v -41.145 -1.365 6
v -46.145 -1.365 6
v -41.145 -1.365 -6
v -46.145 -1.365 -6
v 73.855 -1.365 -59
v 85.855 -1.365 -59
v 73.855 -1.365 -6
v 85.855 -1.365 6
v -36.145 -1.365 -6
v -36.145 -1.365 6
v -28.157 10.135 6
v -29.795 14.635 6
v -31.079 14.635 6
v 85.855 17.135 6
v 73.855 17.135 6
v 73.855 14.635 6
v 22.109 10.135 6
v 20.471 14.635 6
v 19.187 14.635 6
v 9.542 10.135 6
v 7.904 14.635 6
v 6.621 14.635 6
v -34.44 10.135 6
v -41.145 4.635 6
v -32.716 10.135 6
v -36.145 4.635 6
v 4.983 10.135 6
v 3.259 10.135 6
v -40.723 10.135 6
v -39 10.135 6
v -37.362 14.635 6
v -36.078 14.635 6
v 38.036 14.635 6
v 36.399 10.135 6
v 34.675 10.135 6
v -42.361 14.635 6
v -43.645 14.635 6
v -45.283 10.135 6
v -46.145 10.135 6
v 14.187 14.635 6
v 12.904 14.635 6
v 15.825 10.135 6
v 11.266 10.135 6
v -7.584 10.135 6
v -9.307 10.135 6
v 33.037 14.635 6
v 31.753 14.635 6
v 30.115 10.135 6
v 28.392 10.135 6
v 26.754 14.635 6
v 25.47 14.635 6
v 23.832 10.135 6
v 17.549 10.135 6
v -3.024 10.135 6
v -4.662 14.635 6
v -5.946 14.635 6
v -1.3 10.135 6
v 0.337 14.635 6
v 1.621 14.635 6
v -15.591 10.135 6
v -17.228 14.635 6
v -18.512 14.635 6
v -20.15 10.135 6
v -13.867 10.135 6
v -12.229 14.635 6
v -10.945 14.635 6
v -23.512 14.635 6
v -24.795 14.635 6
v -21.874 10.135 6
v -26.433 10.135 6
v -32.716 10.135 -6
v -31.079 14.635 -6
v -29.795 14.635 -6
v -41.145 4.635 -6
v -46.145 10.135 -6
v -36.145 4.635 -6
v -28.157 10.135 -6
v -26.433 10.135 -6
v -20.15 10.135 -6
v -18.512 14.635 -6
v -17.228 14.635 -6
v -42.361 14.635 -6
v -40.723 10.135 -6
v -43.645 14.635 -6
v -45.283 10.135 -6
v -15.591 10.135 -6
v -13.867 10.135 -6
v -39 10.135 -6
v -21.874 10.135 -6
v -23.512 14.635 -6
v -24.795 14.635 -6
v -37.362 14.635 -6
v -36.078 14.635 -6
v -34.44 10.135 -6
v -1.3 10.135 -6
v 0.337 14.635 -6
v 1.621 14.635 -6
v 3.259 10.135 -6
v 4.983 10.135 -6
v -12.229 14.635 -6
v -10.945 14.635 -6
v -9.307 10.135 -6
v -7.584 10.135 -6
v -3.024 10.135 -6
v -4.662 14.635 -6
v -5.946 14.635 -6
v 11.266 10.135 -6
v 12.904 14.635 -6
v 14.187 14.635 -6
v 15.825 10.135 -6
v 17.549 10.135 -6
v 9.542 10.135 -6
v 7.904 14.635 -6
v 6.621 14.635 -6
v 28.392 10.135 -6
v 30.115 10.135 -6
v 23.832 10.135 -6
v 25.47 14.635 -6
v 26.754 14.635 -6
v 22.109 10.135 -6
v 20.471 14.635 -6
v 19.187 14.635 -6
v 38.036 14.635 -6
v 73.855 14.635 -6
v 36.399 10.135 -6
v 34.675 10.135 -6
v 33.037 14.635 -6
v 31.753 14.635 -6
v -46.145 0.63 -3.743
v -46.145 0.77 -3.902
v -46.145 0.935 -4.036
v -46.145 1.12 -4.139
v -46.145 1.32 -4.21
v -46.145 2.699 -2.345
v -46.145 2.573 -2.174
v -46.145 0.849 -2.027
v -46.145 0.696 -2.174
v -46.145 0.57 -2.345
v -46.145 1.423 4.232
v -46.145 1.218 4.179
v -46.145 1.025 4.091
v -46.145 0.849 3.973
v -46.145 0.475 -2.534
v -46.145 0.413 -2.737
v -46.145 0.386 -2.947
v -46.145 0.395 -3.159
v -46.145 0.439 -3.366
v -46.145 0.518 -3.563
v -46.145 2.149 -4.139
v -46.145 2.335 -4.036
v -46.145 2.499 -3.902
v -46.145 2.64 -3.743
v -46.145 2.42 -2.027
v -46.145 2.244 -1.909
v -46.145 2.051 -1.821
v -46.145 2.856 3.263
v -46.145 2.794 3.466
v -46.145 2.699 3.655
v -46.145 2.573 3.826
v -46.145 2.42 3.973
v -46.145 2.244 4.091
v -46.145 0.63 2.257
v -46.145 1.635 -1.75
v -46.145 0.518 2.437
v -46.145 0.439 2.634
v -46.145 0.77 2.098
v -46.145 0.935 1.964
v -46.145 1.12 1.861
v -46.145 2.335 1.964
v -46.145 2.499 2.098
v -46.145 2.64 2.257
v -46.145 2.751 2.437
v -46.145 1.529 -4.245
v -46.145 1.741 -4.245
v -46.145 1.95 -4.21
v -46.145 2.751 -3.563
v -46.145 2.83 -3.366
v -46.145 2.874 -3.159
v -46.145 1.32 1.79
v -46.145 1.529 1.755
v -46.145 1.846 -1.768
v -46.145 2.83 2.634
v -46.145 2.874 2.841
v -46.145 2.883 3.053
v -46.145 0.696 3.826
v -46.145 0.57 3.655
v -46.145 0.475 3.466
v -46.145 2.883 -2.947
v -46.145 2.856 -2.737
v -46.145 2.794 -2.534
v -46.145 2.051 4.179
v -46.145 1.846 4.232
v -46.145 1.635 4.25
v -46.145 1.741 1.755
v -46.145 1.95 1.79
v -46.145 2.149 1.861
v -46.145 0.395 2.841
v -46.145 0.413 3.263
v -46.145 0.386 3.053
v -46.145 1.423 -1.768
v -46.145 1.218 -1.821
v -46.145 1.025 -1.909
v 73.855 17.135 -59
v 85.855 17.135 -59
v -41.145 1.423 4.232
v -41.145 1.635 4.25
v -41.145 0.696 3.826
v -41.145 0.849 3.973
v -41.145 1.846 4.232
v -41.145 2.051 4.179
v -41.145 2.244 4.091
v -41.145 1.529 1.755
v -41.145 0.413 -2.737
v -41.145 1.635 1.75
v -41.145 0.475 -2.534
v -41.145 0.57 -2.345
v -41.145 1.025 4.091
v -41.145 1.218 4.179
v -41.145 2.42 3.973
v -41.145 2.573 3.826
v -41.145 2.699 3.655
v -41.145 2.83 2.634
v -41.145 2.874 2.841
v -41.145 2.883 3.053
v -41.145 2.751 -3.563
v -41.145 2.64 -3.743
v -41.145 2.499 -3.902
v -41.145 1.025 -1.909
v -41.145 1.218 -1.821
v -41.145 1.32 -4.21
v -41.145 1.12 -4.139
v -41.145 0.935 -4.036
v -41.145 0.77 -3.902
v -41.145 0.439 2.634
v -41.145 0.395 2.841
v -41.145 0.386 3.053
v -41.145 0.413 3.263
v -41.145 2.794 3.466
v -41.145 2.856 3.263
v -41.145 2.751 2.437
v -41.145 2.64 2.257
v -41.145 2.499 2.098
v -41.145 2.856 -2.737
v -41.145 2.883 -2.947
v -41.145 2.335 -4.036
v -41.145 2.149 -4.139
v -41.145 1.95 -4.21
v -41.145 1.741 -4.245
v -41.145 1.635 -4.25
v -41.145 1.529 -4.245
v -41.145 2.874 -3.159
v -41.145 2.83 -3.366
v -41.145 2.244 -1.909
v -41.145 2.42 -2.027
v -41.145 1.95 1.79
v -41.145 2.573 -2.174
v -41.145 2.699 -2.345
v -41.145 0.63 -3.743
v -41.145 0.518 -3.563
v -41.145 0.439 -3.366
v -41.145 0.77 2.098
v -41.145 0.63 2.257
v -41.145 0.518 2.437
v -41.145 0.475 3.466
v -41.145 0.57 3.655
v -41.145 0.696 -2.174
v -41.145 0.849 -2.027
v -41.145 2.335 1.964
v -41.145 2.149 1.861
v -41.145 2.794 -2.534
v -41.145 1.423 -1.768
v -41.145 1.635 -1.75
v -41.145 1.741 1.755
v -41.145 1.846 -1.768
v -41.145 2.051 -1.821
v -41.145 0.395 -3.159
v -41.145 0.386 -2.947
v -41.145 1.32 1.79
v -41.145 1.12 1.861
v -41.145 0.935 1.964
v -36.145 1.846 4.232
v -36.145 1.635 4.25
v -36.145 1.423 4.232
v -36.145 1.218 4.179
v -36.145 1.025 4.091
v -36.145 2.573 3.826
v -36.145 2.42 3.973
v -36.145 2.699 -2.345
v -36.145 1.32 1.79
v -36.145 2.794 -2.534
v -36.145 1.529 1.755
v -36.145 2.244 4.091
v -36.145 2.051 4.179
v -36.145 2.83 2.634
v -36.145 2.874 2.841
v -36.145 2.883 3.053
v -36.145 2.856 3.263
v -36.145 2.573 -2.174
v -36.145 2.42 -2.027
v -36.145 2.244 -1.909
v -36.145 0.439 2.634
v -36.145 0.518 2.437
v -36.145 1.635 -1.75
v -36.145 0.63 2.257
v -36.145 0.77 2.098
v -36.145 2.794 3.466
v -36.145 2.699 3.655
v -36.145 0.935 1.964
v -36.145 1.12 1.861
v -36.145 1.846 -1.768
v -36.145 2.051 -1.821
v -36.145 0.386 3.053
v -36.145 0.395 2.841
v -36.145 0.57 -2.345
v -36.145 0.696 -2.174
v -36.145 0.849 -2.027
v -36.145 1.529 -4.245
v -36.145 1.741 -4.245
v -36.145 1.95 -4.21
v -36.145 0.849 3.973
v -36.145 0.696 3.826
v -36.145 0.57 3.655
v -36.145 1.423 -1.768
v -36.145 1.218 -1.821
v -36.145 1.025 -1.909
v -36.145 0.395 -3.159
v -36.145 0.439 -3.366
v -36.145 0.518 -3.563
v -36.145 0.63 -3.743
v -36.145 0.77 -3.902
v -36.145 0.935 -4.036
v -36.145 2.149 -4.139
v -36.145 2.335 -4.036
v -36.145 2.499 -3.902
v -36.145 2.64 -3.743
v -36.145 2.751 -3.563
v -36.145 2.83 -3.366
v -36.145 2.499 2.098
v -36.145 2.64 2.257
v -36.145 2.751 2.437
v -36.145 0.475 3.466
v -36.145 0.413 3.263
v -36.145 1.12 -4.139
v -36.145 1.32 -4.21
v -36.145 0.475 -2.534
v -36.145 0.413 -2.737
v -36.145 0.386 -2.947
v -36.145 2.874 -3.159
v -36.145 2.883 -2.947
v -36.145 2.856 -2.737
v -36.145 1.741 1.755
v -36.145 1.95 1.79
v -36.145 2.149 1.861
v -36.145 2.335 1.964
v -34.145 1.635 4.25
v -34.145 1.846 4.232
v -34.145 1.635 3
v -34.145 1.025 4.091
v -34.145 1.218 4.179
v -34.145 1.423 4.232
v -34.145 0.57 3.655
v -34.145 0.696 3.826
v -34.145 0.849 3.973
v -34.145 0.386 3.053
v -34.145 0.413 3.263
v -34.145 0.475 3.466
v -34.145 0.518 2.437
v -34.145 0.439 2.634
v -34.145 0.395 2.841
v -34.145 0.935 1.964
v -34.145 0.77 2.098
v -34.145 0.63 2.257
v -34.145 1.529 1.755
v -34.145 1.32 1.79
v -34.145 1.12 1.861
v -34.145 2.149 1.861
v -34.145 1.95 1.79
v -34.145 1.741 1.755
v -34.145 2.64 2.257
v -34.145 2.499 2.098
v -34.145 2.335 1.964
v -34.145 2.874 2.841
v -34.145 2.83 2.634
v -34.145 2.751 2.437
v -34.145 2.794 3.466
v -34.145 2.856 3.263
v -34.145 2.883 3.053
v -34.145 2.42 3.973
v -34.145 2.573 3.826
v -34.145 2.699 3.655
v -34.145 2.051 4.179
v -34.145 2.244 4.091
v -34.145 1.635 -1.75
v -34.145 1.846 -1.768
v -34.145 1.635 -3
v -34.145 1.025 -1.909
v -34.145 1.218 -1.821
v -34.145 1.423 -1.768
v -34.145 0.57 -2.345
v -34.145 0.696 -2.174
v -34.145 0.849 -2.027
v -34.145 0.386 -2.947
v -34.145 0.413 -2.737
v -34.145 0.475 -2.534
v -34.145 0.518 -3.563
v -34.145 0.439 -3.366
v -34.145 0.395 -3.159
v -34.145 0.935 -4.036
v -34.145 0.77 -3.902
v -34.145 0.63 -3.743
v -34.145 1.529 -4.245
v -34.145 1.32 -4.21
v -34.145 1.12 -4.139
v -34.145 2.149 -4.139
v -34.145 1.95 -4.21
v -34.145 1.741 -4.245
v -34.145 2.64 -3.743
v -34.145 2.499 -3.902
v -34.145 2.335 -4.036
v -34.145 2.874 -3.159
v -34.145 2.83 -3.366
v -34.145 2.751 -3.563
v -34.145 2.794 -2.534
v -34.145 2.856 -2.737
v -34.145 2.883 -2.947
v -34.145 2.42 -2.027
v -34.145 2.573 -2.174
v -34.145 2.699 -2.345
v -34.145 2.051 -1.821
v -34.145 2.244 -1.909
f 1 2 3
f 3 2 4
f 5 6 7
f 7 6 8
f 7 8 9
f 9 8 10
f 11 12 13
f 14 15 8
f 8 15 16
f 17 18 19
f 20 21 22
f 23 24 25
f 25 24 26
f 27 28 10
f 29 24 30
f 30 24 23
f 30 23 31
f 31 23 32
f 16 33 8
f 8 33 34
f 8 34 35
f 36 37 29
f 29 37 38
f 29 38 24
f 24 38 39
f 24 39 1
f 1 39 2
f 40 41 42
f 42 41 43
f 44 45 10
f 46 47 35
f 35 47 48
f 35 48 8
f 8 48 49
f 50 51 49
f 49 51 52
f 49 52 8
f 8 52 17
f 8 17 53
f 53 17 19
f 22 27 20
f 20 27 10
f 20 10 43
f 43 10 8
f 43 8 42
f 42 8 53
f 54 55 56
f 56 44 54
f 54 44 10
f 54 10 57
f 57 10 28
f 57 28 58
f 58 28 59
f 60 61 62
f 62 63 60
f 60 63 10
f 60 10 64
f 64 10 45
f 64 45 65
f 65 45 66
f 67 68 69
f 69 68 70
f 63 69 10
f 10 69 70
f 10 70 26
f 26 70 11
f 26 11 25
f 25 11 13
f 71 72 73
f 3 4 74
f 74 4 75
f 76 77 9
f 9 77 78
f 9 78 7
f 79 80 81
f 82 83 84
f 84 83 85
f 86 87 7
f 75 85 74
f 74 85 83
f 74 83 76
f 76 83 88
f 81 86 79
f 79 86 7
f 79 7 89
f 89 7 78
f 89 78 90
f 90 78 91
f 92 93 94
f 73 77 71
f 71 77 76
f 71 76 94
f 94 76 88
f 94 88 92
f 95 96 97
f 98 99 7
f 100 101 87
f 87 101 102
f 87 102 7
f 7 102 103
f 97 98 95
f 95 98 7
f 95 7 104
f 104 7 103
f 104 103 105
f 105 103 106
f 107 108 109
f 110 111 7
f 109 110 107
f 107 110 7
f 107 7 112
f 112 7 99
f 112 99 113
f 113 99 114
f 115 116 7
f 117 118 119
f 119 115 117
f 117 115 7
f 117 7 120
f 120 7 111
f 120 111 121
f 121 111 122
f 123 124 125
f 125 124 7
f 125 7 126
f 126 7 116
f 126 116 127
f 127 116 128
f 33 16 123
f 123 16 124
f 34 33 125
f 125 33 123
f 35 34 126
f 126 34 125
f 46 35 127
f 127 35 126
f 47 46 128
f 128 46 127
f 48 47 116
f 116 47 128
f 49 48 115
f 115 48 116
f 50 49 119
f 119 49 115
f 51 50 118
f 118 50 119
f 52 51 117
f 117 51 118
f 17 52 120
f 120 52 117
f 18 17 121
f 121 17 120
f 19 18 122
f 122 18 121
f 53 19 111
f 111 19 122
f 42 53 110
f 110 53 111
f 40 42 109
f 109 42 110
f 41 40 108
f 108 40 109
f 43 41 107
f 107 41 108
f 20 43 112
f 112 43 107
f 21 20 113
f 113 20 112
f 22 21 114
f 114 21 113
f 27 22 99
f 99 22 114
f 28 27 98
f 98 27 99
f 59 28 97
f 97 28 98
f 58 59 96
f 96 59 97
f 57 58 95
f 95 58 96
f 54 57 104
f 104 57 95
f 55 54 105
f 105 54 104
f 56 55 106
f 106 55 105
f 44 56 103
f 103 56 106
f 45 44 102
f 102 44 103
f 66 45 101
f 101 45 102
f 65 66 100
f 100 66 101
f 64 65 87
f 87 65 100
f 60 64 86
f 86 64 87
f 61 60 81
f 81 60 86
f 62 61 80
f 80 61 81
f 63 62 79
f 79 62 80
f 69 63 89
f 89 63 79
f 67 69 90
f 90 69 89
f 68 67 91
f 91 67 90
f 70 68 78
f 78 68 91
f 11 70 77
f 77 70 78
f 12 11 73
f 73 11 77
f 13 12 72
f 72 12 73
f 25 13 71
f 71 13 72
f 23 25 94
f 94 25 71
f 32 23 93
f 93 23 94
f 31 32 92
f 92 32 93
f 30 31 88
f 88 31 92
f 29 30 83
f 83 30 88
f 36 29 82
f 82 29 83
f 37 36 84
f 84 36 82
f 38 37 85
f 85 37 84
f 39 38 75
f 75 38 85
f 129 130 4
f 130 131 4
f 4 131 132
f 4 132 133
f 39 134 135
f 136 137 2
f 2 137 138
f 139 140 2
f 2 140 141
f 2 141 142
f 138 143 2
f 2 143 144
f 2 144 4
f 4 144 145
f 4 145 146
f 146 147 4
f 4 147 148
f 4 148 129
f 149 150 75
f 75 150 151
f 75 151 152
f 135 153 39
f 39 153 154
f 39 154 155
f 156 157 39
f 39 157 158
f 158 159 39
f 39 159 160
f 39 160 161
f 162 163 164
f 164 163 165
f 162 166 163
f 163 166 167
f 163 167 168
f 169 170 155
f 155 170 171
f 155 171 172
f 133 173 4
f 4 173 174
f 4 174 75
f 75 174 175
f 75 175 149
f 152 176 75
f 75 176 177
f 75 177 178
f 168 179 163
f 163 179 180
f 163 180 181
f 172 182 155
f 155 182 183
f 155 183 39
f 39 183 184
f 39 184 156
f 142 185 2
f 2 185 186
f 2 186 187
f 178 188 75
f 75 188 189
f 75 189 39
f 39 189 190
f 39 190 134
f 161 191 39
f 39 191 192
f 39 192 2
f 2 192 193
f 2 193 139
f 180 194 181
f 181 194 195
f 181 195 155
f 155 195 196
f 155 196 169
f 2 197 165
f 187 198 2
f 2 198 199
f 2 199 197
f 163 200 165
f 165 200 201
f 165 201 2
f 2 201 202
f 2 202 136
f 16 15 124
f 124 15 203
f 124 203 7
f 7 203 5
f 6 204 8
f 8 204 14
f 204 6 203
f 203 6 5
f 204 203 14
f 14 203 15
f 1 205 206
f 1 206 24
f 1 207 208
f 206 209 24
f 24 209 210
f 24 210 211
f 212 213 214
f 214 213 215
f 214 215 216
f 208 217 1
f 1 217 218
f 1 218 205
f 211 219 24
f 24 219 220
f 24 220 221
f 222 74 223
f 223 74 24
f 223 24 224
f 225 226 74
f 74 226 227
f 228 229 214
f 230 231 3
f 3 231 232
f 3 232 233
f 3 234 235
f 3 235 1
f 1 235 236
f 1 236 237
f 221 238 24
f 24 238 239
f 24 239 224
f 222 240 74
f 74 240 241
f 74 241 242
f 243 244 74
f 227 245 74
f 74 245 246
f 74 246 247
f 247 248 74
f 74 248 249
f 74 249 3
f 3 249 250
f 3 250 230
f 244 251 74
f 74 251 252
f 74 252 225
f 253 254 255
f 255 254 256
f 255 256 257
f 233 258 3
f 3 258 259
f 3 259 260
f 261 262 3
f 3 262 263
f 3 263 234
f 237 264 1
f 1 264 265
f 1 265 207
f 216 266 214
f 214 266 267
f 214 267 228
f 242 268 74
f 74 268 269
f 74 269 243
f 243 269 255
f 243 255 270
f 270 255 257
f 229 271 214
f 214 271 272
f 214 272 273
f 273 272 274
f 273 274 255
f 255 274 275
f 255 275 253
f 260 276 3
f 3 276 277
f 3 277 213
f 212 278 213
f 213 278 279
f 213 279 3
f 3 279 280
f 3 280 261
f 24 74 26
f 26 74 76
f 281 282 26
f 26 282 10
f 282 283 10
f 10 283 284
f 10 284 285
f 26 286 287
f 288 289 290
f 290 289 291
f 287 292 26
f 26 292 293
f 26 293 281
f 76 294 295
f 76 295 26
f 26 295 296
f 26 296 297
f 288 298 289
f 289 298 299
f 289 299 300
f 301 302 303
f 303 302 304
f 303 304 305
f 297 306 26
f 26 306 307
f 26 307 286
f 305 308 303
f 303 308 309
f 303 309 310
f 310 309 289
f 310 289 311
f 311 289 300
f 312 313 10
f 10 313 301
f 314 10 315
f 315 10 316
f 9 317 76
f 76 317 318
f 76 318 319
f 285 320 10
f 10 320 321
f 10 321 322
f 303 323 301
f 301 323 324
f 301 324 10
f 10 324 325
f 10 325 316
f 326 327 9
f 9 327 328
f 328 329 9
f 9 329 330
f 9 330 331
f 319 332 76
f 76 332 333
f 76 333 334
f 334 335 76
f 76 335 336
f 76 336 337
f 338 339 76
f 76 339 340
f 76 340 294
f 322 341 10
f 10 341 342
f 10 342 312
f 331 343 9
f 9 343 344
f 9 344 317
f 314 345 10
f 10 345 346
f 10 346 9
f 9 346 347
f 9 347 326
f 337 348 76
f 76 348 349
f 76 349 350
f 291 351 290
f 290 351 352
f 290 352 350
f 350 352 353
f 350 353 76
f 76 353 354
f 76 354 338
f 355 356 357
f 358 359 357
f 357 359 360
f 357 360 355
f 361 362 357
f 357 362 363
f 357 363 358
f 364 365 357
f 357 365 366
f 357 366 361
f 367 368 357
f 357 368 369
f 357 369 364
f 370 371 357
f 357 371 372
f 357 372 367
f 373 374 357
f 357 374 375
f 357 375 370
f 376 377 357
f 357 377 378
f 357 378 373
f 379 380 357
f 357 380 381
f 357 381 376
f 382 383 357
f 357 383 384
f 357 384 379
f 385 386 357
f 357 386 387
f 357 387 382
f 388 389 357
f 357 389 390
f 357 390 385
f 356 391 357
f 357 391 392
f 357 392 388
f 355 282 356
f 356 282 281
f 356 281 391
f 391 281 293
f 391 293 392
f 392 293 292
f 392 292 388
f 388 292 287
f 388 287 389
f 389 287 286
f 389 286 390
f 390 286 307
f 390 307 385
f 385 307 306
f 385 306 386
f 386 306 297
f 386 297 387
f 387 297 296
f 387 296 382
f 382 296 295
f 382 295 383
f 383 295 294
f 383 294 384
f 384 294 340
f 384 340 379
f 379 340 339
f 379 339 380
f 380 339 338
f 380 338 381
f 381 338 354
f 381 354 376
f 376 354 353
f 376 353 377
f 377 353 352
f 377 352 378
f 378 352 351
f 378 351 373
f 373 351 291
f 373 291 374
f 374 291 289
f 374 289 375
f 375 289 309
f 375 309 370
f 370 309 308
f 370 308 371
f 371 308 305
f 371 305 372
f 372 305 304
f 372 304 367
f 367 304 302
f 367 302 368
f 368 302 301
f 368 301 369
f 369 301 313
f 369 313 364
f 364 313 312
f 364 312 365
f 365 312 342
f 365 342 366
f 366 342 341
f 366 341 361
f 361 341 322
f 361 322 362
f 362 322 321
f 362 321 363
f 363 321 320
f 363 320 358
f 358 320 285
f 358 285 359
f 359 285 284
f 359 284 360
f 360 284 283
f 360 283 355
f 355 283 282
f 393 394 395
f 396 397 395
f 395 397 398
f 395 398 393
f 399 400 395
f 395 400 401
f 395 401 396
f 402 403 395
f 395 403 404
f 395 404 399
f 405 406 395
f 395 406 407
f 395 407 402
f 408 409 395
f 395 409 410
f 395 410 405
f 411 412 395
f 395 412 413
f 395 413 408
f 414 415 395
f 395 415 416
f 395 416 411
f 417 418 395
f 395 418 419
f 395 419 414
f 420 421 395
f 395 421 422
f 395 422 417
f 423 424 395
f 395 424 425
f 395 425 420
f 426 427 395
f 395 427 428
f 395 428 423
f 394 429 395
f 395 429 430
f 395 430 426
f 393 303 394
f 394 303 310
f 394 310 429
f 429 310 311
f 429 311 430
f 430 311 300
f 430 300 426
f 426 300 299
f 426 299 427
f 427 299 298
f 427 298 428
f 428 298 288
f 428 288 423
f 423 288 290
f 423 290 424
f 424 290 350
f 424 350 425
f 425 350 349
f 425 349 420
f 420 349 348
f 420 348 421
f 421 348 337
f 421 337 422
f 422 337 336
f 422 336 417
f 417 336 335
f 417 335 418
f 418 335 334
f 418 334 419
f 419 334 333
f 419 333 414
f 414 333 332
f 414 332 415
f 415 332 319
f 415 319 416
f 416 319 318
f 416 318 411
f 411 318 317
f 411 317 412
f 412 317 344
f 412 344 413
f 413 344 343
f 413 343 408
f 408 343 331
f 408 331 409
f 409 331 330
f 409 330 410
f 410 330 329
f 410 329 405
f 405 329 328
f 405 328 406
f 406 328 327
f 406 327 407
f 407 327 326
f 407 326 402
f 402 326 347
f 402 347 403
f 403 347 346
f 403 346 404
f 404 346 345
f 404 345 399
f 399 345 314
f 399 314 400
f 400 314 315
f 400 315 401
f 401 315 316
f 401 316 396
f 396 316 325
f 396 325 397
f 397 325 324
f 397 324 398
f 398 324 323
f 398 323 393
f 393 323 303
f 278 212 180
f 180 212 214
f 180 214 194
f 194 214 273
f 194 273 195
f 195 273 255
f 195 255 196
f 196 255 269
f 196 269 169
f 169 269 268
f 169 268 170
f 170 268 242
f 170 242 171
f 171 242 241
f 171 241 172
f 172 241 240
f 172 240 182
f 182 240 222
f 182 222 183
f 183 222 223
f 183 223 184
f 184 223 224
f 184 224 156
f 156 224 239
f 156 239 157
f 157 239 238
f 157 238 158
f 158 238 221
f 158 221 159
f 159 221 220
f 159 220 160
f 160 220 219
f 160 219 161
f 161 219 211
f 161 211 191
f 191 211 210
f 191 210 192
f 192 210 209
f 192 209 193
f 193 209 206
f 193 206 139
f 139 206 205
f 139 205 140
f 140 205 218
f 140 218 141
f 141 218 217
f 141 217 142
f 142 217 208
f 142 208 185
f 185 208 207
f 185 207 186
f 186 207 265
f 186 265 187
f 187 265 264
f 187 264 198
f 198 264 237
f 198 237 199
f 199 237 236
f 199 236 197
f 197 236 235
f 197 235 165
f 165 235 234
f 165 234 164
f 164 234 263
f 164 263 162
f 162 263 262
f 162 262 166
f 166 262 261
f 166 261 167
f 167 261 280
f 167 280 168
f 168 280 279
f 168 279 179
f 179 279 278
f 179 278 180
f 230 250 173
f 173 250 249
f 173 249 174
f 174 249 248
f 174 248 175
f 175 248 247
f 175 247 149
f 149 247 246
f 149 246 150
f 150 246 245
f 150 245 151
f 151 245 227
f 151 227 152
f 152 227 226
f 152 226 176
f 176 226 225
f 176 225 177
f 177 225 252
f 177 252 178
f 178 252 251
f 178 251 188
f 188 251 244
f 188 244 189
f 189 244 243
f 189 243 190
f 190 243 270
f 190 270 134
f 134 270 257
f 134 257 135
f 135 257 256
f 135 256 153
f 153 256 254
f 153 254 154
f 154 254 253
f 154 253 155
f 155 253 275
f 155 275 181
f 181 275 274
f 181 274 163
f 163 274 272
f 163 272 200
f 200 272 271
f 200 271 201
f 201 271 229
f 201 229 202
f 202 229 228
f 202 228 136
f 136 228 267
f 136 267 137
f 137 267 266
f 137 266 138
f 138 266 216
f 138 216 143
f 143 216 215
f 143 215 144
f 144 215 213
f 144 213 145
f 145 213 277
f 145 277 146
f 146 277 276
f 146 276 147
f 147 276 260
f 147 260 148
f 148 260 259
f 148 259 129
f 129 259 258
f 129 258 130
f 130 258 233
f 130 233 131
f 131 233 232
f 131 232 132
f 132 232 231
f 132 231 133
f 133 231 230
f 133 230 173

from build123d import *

# Parameters (mm, degrees)
BOSS_EXTRUDE1_DEPTH = 12
SKETCH6_W           = 12
SKETCH6_H           = 11.5
BOSS_EXTRUDE4_DEPTH = 65
SKETCH7_W           = 12
SKETCH7_H           = 7
BOSS_EXTRUDE5_DEPTH = 65
SKETCH8_W           = 5
SKETCH8_H           = 6
CUT_EXTRUDE1_DEPTH  = 65
SKETCH9_W           = 34.920803936
SKETCH9_H           = 4.5
BOSS_EXTRUDE6_DEPTH = 12
SKETCH10_R          = 1.25
CUT_EXTRUDE2_DEPTH  = 12


with BuildPart() as part:
    # Sketch1 → Boss-Extrude1 (new body)
    with BuildSketch(Plane(origin=(0, 0, -6), x_dir=(-1, 0, 0), z_dir=(0, 0, -1))):
        Polygon((-70.736133614, 14.634553049), (-72.373999668, 10.134553049), (-73.855349707, 10.134553049), (-73.855349707, -1.365446951), (46.144650293, -1.365446951), (46.144650293, 10.134553049), (45.282779553, 10.134553049), (43.644913499, 14.634553049), (42.361201786, 14.634553049), (40.723335732, 10.134553049), (38.999594253, 10.134553049), (37.361728199, 14.634553049), (36.078016486, 14.634553049), (34.440150432, 10.134553049), (32.716408953, 10.134553049), (31.078542899, 14.634553049), (29.794831186, 14.634553049), (28.156965132, 10.134553049), (26.433223653, 10.134553049), (24.795357599, 14.634553049), (23.511645886, 14.634553049), (21.873779832, 10.134553049), (20.150038353, 10.134553049), (18.512172299, 14.634553049), (17.228460586, 14.634553049), (15.590594532, 10.134553049), (13.866853053, 10.134553049), (12.228986999, 14.634553049), (10.945275286, 14.634553049), (9.307409232, 10.134553049), (7.583667753, 10.134553049), (5.945801699, 14.634553049), (4.662089986, 14.634553049), (3.024223932, 10.134553049), (1.300482453, 10.134553049), (-0.337383601, 14.634553049), (-1.621095314, 14.634553049), (-3.258961368, 10.134553049), (-4.982702847, 10.134553049), (-6.620568901, 14.634553049), (-7.904280614, 14.634553049), (-9.542146668, 10.134553049), (-11.265888147, 10.134553049), (-12.903754201, 14.634553049), (-14.187465914, 14.634553049), (-15.825331968, 10.134553049), (-17.549073447, 10.134553049), (-19.186939501, 14.634553049), (-20.470651214, 14.634553049), (-22.108517268, 10.134553049), (-23.832258747, 10.134553049), (-25.470124801, 14.634553049), (-26.753836514, 14.634553049), (-28.391702568, 10.134553049), (-30.115444047, 10.134553049), (-31.753310101, 14.634553049), (-33.037021814, 14.634553049), (-34.674887868, 10.134553049), (-36.398629347, 10.134553049), (-38.036495401, 14.634553049), (-39.320207114, 14.634553049), (-40.958073168, 10.134553049), (-42.681814647, 10.134553049), (-44.319680701, 14.634553049), (-45.603392414, 14.634553049), (-47.241258468, 10.134553049), (-48.964999947, 10.134553049), (-50.602866001, 14.634553049), (-51.886577714, 14.634553049), (-53.524443768, 10.134553049), (-55.248185247, 10.134553049), (-56.886051301, 14.634553049), (-58.169763014, 14.634553049), (-59.807629068, 10.134553049), (-61.531370547, 10.134553049), (-63.169236601, 14.634553049), (-64.452948314, 14.634553049), (-66.090814368, 10.134553049), (-67.814555847, 10.134553049), (-69.452421901, 14.634553049), align=None)
    extrude(amount=-BOSS_EXTRUDE1_DEPTH)

    # Sketch6 → Boss-Extrude4 (add)
    with BuildSketch(Plane.XY.offset(6)):
        with Locations((79.855349707, 4.384553049)):
            Rectangle(SKETCH6_W, SKETCH6_H)
    extrude(amount=-BOSS_EXTRUDE4_DEPTH)

    # Sketch7 → Boss-Extrude5 (add)
    with BuildSketch(Plane.XY.offset(6)):
        with Locations((79.855349707, 13.634553049)):
            Rectangle(SKETCH7_W, SKETCH7_H)
    extrude(amount=-BOSS_EXTRUDE5_DEPTH)

    # Sketch8 → Cut-Extrude1 (cut)
    with BuildSketch(Plane.XY.offset(6)):
        with Locations((-38.644650293, 1.634553049)):
            Rectangle(SKETCH8_W, SKETCH8_H)
    extrude(amount=-CUT_EXTRUDE1_DEPTH, mode=Mode.SUBTRACT)

    # Sketch9 → Boss-Extrude6 (add)
    with BuildSketch(Plane.XY.offset(6)):
        with Locations((56.394947739, 12.384553049)):
            Rectangle(SKETCH9_W, SKETCH9_H)
    extrude(amount=-BOSS_EXTRUDE6_DEPTH)

    # Sketch10 → Cut-Extrude2 (cut)
    with BuildSketch(Plane.ZY.offset(46.144650293)):
        with Locations((-3, 1.634553049)):
            Circle(SKETCH10_R)
        with Locations((3, 1.634553049)):
            Circle(SKETCH10_R)
    extrude(amount=-CUT_EXTRUDE2_DEPTH, mode=Mode.SUBTRACT)


solid = part.part
